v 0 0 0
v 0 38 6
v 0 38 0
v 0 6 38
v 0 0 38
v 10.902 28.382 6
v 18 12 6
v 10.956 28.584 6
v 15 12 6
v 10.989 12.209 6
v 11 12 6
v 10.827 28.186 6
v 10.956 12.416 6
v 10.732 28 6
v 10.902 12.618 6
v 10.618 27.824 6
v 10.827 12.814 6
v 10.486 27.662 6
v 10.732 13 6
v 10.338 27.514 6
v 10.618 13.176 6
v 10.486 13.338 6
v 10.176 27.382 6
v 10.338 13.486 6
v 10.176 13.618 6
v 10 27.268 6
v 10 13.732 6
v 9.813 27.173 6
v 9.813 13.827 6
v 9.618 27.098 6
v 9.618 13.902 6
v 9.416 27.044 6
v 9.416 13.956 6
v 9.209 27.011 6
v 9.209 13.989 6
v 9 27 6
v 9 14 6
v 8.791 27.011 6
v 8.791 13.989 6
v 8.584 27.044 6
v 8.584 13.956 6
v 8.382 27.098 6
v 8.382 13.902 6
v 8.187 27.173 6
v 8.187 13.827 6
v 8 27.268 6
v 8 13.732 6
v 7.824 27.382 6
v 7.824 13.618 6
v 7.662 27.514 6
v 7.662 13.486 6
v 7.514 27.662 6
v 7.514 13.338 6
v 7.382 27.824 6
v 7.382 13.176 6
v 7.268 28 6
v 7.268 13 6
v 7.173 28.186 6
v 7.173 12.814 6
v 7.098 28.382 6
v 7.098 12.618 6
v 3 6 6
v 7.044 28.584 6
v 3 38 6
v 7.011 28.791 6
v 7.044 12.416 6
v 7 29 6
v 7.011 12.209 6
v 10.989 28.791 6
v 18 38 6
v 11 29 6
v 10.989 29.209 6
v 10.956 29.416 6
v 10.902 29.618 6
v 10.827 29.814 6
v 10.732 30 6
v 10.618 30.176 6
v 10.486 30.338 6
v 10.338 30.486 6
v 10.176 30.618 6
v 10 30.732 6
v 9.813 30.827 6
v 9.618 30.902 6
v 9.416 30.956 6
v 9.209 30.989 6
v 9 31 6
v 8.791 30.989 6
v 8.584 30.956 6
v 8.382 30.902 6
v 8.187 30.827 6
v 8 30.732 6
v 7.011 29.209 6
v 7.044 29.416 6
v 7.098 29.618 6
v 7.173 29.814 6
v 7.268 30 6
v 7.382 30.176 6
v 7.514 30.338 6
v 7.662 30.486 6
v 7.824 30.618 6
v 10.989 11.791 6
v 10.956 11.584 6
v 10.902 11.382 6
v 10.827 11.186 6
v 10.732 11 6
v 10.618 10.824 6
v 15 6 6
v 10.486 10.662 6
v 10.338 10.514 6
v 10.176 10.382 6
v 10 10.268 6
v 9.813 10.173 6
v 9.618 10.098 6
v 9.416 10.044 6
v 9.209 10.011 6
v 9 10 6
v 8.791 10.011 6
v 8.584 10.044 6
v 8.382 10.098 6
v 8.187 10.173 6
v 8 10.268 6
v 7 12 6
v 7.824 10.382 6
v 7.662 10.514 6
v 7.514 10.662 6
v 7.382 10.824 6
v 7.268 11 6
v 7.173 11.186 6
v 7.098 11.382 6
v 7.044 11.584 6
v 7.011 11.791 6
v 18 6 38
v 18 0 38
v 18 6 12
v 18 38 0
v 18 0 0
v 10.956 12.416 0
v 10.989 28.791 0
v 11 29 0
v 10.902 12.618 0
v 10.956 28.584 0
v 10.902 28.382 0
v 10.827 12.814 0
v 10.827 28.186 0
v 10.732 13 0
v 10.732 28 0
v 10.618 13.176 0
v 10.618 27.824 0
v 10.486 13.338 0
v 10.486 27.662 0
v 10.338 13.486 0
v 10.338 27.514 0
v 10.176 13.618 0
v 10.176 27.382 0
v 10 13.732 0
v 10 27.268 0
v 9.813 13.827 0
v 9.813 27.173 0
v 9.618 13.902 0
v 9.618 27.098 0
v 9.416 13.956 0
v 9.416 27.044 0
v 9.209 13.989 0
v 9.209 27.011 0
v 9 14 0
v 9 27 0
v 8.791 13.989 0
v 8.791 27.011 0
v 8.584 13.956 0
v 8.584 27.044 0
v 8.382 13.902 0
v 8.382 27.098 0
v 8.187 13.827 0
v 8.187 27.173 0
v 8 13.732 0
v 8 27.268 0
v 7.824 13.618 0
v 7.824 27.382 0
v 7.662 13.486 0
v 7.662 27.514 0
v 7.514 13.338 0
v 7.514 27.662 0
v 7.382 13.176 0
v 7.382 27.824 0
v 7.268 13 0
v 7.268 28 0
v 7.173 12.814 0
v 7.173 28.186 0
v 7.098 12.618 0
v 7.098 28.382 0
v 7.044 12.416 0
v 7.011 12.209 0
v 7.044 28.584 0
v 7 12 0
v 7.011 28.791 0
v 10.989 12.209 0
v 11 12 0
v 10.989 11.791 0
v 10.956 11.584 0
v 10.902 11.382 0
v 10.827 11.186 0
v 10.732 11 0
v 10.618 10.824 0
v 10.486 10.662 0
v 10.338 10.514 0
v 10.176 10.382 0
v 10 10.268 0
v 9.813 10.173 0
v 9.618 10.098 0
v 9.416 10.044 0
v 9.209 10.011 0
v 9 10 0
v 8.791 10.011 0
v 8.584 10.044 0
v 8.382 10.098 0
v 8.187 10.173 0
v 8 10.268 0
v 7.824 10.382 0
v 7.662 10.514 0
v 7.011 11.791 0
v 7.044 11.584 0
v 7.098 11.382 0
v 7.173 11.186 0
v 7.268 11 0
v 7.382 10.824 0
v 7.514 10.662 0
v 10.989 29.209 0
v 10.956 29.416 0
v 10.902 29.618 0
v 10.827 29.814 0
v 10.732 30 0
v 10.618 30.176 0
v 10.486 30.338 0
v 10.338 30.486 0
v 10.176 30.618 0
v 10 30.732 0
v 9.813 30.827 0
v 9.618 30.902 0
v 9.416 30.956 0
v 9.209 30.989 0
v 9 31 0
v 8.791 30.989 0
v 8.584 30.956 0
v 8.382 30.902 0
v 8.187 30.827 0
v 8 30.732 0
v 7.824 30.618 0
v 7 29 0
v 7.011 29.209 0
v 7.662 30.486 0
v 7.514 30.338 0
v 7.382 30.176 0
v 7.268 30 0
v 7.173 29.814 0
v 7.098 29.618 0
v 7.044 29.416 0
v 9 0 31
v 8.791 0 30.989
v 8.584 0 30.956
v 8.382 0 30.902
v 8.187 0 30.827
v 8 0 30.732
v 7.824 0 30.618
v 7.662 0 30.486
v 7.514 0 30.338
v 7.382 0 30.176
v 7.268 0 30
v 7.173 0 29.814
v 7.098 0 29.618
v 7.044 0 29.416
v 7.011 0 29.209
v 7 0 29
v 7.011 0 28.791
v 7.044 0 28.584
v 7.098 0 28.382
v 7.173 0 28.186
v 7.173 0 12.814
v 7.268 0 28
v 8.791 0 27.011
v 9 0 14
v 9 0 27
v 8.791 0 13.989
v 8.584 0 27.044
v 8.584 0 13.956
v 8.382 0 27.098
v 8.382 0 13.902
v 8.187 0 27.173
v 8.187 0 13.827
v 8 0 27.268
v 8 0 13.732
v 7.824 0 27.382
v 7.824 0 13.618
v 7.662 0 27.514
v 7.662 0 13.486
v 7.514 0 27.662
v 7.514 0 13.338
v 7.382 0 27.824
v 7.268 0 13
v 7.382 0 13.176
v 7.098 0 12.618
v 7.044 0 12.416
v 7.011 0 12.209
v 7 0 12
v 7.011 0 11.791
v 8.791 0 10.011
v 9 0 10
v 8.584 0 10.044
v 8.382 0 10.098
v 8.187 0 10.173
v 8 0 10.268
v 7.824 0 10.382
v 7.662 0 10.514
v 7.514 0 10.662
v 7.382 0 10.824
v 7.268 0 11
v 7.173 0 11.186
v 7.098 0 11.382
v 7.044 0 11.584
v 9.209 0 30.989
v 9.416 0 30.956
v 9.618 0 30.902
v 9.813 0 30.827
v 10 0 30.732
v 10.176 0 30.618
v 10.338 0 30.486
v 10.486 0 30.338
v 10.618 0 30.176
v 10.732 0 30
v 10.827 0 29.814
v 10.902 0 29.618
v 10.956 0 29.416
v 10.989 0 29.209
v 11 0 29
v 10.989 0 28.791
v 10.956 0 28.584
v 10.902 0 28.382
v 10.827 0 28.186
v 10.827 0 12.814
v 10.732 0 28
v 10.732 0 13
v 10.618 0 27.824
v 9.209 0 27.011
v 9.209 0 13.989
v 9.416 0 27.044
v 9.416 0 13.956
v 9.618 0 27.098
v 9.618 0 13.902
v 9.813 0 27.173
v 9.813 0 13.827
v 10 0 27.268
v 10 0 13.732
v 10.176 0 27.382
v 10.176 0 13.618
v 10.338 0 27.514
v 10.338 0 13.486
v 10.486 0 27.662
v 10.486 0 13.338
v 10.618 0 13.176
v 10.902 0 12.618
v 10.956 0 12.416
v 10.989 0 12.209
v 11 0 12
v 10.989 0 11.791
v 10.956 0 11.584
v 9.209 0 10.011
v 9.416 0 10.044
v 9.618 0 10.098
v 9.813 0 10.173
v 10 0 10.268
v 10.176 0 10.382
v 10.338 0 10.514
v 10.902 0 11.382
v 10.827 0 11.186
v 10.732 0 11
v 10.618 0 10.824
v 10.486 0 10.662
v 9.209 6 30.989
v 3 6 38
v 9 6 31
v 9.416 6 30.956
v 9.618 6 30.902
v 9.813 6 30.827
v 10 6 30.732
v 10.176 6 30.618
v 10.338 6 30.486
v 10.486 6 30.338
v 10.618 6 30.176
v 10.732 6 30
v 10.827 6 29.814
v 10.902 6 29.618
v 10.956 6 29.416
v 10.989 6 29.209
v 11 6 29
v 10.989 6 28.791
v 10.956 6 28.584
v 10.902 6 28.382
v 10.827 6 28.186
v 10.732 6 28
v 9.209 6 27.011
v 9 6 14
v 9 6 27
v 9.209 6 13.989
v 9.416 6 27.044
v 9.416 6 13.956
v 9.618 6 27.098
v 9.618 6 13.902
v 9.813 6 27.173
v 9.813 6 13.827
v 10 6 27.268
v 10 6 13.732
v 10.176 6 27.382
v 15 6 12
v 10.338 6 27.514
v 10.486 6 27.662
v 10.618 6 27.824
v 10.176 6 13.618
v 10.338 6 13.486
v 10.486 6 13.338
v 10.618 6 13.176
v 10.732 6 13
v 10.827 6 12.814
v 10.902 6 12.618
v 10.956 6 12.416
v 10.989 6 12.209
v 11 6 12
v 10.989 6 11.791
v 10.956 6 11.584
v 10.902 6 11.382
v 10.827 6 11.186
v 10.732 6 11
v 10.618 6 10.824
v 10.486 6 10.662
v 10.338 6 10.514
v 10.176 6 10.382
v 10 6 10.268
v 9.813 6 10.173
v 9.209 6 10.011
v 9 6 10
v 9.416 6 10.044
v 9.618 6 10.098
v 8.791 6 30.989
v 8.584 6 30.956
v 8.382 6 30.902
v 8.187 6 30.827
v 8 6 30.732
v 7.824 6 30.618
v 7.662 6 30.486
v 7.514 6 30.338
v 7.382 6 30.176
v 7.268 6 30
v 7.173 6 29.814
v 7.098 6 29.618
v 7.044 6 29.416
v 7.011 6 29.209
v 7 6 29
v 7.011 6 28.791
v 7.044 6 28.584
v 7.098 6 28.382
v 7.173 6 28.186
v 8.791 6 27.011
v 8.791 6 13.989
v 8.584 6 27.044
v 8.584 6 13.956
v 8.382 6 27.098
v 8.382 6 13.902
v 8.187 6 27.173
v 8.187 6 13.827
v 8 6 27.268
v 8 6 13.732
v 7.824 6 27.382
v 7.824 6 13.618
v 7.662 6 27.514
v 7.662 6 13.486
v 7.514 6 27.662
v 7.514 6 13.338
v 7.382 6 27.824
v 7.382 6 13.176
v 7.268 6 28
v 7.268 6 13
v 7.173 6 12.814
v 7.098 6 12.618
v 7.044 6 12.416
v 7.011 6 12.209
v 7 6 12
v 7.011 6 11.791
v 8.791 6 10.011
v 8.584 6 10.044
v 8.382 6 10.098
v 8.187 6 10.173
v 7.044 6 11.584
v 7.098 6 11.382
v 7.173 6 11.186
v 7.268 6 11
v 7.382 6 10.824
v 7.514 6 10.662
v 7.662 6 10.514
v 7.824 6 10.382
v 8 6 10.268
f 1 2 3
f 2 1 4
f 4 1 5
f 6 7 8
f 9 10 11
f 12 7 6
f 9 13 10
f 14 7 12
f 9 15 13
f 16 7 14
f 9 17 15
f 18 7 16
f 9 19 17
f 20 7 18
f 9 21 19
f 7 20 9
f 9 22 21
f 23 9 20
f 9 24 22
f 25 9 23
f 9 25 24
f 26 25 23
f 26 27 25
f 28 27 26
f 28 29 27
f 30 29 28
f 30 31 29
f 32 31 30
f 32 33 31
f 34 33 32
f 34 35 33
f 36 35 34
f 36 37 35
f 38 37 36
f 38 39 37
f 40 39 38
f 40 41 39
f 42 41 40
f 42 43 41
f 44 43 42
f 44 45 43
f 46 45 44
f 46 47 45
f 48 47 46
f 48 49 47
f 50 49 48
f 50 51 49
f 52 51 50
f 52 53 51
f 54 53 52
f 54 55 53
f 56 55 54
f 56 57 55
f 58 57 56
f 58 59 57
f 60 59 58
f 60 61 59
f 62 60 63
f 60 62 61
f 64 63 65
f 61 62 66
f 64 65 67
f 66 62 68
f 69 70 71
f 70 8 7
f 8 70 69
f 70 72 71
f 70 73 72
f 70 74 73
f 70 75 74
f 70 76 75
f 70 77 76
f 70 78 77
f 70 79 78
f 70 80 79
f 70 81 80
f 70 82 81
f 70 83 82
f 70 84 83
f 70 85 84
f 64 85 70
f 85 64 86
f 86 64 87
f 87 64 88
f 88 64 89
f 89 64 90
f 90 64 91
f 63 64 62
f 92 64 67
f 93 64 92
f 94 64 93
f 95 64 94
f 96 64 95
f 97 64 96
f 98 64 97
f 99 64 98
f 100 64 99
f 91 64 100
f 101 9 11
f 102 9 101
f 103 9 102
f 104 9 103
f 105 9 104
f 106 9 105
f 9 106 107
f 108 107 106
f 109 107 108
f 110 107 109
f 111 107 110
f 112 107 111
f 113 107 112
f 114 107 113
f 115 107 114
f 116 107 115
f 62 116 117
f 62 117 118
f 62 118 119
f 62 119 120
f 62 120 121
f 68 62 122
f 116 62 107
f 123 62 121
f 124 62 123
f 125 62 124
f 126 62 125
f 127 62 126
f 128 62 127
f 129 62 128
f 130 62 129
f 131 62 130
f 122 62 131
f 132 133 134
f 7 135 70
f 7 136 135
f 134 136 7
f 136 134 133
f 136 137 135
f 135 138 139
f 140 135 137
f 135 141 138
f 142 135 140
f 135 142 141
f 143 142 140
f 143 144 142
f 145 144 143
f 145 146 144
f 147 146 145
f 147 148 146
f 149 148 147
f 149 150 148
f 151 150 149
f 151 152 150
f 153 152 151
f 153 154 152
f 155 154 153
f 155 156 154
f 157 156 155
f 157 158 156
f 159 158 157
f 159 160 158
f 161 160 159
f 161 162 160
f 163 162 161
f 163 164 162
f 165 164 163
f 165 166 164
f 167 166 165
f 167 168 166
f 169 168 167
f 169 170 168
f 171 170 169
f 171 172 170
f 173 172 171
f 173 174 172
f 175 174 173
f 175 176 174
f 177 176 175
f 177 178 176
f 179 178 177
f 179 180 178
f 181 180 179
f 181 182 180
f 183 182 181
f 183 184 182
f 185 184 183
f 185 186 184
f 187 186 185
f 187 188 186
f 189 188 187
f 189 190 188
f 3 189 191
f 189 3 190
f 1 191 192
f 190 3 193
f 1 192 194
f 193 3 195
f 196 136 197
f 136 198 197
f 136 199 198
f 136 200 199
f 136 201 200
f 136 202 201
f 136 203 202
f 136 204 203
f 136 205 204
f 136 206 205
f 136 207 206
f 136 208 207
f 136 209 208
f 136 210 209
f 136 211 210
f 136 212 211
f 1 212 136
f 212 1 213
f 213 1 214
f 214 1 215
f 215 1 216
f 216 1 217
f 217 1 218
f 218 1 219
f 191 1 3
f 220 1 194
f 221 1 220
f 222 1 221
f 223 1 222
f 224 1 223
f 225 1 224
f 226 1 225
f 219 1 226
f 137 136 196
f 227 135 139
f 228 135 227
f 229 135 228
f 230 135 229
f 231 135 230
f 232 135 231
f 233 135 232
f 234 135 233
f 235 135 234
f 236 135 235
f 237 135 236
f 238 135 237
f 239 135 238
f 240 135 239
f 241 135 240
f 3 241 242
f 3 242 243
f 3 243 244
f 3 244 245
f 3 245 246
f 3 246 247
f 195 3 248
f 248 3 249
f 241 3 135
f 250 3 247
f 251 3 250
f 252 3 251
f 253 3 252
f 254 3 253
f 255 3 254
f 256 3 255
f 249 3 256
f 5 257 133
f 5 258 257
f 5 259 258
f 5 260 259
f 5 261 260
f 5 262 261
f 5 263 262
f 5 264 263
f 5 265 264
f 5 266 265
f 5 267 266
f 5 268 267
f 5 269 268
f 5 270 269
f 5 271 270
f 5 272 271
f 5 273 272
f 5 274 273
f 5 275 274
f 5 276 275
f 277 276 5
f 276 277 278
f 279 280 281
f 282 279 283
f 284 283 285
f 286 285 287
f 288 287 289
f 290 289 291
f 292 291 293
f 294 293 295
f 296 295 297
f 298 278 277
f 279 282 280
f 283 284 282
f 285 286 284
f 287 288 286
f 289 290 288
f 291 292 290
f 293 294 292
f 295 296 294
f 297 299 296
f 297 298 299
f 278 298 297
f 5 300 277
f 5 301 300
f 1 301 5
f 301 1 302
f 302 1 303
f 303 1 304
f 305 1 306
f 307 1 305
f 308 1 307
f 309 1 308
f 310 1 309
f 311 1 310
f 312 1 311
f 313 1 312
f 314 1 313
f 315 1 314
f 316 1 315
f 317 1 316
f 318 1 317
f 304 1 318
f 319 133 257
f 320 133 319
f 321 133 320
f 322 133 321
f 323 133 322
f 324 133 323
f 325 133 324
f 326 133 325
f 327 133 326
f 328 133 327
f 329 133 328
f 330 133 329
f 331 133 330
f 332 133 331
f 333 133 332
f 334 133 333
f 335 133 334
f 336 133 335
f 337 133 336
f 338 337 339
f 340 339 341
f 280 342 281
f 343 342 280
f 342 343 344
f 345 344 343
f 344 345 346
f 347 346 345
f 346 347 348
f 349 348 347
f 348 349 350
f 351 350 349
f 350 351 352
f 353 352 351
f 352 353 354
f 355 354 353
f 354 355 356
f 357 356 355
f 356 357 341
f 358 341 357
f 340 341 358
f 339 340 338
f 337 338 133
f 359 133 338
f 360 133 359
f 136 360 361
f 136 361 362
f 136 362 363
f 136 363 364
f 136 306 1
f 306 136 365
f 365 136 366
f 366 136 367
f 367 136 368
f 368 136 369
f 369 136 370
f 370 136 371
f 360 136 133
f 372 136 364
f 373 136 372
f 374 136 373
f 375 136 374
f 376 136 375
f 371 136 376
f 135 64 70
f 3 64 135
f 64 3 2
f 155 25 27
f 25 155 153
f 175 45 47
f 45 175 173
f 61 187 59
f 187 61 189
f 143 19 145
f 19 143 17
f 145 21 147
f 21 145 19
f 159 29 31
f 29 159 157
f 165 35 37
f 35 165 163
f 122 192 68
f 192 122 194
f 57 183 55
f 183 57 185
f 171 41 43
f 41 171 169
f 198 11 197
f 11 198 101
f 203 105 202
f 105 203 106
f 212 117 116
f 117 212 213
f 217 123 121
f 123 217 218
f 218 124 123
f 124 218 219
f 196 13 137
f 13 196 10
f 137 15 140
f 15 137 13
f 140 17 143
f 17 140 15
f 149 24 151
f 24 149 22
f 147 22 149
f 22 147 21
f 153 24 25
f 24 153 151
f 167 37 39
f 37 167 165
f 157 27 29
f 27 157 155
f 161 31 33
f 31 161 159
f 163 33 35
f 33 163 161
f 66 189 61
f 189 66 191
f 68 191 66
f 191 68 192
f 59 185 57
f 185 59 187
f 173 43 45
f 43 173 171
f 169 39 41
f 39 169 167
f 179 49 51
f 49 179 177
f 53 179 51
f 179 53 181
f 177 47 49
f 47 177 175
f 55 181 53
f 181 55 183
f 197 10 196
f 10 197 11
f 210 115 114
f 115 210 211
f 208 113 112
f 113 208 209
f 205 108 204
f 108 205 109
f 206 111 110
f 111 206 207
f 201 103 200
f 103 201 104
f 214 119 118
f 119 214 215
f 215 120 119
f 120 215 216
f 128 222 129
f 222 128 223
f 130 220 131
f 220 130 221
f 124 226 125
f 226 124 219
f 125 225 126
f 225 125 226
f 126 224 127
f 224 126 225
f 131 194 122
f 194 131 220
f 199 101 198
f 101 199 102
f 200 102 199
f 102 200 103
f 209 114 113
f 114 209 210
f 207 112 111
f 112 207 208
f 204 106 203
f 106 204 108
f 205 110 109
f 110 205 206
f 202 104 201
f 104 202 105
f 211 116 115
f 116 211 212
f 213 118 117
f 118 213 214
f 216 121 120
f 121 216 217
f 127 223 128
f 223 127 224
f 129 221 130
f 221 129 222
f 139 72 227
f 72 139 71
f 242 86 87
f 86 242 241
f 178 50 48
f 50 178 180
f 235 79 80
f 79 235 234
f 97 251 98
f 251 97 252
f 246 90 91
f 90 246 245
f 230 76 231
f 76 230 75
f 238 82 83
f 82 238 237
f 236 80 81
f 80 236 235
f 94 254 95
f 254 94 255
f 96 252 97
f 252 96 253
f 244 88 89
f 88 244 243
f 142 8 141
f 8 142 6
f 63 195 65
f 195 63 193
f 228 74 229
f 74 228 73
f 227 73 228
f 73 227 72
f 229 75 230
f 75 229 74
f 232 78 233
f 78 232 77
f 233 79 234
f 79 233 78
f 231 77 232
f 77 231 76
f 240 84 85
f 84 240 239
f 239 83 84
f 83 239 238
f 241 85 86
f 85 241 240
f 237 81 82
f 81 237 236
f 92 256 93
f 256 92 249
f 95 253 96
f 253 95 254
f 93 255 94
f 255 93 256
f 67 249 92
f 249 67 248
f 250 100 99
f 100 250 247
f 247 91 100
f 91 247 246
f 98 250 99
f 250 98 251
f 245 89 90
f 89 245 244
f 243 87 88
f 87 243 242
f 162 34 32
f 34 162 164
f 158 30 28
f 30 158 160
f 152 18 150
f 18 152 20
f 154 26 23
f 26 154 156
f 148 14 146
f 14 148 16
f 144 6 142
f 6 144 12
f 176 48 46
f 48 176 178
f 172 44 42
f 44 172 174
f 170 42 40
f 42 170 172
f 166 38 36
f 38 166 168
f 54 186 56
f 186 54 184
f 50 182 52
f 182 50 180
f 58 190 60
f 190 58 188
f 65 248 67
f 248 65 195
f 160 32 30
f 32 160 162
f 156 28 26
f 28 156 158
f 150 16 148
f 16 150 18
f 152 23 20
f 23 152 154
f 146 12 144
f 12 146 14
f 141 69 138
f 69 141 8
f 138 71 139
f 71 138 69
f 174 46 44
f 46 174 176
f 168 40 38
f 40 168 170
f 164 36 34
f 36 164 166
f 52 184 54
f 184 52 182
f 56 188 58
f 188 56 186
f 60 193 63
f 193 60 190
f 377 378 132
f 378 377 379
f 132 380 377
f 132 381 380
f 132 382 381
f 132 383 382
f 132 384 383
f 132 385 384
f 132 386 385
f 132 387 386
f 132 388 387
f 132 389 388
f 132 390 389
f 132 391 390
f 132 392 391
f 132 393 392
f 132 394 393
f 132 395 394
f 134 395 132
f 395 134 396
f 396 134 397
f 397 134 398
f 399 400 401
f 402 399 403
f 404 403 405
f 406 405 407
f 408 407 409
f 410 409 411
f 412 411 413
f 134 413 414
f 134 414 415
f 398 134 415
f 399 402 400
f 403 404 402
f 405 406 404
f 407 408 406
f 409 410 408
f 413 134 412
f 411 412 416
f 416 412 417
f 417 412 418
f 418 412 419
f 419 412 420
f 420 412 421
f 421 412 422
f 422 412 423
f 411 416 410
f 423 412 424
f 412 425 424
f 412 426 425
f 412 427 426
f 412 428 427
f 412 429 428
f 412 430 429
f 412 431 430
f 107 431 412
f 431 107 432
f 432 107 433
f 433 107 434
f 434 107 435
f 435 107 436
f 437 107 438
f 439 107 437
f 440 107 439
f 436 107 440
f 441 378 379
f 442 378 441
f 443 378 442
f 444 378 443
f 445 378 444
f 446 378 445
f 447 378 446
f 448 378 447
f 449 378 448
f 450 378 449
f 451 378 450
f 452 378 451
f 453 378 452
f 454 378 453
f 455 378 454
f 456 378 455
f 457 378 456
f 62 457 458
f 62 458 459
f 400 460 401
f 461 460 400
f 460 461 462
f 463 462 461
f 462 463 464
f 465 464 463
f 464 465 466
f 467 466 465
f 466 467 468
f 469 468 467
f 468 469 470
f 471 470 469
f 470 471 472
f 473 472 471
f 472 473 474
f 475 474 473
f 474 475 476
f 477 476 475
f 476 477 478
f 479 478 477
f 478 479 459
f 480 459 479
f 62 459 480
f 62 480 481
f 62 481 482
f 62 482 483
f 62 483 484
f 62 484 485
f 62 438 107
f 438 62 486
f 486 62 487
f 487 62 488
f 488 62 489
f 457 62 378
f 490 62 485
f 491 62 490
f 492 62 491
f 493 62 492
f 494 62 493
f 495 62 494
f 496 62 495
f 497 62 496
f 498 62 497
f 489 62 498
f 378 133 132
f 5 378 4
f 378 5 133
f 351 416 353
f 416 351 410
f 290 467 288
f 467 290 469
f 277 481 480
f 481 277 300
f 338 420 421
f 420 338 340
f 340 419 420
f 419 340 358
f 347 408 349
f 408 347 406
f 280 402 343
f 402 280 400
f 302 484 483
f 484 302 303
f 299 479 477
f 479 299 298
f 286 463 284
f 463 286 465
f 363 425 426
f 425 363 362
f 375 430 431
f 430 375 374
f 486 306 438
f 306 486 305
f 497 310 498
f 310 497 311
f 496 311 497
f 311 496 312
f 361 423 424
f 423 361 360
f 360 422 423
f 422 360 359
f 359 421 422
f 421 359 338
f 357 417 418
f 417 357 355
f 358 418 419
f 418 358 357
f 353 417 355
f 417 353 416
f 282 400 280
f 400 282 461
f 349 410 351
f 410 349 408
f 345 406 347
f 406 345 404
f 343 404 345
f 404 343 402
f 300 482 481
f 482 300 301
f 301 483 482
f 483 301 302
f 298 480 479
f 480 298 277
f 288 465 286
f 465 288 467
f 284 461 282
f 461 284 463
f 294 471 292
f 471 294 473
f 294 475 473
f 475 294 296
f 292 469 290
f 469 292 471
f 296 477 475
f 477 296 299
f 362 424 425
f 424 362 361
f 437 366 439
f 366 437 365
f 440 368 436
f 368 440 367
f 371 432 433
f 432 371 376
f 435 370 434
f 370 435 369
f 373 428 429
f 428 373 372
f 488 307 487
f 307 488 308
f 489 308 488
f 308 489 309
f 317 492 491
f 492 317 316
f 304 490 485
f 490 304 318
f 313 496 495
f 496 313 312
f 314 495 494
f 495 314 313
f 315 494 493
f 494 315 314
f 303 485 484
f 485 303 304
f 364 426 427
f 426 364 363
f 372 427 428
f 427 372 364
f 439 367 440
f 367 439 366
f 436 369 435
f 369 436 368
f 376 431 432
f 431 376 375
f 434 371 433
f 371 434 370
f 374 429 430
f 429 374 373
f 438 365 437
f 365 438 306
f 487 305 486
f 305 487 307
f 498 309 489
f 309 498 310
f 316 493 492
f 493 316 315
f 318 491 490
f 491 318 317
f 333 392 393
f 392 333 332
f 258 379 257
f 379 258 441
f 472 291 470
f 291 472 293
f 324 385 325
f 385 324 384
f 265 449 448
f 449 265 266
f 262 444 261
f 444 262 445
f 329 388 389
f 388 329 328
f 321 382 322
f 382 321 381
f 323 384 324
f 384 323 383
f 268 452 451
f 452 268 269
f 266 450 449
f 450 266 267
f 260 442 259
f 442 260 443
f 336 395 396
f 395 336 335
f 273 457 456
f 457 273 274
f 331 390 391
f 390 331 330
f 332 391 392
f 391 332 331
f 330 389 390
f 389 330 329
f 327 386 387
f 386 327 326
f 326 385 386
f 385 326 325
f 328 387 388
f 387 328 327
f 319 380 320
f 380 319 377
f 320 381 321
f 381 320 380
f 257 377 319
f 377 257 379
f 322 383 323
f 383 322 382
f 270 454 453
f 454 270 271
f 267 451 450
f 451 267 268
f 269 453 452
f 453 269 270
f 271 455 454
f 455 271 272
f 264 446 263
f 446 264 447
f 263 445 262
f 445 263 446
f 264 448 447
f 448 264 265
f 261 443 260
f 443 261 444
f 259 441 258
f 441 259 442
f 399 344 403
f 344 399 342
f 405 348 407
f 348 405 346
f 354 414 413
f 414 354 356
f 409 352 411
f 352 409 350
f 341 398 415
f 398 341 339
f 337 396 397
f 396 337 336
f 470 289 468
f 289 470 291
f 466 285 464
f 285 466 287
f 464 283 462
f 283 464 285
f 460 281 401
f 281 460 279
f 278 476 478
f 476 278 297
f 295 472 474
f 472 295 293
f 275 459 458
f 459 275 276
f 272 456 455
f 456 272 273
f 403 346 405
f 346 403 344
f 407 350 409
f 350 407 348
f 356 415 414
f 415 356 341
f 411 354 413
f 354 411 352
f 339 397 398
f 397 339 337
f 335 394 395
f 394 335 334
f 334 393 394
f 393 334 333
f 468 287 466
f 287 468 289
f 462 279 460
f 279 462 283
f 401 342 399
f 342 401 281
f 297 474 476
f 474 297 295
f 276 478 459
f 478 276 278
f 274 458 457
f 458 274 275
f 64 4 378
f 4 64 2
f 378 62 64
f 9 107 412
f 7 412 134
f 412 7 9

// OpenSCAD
/*

comments

*/

$fn=60;

points = [
    [0,6,6],
    [0,6,38],
    [0,38,6]
];

points_2 = [
    [0,6,6],
    [0,6,12],
    [0,12,6]
];

faces = [
    [0,1,2]
];

hull() {
    polyhedron(points, faces);
    translate([3,0,0])
    polyhedron(points, faces);
}

translate([15,0,0])
hull() {
    polyhedron(points_2, faces);
    translate([3,0,0])
    polyhedron(points_2, faces);
}

schenkel();
translate([0,6,0])
rotate(90,[1,0,0])
schenkel();

module schenkel() {
    difference() {
        cube([18,38,6]);
        translate([9,12,-10])
        cylinder(20,2,2);
        translate([9,29,-10])
        cylinder(20,2,2);
    }
}
